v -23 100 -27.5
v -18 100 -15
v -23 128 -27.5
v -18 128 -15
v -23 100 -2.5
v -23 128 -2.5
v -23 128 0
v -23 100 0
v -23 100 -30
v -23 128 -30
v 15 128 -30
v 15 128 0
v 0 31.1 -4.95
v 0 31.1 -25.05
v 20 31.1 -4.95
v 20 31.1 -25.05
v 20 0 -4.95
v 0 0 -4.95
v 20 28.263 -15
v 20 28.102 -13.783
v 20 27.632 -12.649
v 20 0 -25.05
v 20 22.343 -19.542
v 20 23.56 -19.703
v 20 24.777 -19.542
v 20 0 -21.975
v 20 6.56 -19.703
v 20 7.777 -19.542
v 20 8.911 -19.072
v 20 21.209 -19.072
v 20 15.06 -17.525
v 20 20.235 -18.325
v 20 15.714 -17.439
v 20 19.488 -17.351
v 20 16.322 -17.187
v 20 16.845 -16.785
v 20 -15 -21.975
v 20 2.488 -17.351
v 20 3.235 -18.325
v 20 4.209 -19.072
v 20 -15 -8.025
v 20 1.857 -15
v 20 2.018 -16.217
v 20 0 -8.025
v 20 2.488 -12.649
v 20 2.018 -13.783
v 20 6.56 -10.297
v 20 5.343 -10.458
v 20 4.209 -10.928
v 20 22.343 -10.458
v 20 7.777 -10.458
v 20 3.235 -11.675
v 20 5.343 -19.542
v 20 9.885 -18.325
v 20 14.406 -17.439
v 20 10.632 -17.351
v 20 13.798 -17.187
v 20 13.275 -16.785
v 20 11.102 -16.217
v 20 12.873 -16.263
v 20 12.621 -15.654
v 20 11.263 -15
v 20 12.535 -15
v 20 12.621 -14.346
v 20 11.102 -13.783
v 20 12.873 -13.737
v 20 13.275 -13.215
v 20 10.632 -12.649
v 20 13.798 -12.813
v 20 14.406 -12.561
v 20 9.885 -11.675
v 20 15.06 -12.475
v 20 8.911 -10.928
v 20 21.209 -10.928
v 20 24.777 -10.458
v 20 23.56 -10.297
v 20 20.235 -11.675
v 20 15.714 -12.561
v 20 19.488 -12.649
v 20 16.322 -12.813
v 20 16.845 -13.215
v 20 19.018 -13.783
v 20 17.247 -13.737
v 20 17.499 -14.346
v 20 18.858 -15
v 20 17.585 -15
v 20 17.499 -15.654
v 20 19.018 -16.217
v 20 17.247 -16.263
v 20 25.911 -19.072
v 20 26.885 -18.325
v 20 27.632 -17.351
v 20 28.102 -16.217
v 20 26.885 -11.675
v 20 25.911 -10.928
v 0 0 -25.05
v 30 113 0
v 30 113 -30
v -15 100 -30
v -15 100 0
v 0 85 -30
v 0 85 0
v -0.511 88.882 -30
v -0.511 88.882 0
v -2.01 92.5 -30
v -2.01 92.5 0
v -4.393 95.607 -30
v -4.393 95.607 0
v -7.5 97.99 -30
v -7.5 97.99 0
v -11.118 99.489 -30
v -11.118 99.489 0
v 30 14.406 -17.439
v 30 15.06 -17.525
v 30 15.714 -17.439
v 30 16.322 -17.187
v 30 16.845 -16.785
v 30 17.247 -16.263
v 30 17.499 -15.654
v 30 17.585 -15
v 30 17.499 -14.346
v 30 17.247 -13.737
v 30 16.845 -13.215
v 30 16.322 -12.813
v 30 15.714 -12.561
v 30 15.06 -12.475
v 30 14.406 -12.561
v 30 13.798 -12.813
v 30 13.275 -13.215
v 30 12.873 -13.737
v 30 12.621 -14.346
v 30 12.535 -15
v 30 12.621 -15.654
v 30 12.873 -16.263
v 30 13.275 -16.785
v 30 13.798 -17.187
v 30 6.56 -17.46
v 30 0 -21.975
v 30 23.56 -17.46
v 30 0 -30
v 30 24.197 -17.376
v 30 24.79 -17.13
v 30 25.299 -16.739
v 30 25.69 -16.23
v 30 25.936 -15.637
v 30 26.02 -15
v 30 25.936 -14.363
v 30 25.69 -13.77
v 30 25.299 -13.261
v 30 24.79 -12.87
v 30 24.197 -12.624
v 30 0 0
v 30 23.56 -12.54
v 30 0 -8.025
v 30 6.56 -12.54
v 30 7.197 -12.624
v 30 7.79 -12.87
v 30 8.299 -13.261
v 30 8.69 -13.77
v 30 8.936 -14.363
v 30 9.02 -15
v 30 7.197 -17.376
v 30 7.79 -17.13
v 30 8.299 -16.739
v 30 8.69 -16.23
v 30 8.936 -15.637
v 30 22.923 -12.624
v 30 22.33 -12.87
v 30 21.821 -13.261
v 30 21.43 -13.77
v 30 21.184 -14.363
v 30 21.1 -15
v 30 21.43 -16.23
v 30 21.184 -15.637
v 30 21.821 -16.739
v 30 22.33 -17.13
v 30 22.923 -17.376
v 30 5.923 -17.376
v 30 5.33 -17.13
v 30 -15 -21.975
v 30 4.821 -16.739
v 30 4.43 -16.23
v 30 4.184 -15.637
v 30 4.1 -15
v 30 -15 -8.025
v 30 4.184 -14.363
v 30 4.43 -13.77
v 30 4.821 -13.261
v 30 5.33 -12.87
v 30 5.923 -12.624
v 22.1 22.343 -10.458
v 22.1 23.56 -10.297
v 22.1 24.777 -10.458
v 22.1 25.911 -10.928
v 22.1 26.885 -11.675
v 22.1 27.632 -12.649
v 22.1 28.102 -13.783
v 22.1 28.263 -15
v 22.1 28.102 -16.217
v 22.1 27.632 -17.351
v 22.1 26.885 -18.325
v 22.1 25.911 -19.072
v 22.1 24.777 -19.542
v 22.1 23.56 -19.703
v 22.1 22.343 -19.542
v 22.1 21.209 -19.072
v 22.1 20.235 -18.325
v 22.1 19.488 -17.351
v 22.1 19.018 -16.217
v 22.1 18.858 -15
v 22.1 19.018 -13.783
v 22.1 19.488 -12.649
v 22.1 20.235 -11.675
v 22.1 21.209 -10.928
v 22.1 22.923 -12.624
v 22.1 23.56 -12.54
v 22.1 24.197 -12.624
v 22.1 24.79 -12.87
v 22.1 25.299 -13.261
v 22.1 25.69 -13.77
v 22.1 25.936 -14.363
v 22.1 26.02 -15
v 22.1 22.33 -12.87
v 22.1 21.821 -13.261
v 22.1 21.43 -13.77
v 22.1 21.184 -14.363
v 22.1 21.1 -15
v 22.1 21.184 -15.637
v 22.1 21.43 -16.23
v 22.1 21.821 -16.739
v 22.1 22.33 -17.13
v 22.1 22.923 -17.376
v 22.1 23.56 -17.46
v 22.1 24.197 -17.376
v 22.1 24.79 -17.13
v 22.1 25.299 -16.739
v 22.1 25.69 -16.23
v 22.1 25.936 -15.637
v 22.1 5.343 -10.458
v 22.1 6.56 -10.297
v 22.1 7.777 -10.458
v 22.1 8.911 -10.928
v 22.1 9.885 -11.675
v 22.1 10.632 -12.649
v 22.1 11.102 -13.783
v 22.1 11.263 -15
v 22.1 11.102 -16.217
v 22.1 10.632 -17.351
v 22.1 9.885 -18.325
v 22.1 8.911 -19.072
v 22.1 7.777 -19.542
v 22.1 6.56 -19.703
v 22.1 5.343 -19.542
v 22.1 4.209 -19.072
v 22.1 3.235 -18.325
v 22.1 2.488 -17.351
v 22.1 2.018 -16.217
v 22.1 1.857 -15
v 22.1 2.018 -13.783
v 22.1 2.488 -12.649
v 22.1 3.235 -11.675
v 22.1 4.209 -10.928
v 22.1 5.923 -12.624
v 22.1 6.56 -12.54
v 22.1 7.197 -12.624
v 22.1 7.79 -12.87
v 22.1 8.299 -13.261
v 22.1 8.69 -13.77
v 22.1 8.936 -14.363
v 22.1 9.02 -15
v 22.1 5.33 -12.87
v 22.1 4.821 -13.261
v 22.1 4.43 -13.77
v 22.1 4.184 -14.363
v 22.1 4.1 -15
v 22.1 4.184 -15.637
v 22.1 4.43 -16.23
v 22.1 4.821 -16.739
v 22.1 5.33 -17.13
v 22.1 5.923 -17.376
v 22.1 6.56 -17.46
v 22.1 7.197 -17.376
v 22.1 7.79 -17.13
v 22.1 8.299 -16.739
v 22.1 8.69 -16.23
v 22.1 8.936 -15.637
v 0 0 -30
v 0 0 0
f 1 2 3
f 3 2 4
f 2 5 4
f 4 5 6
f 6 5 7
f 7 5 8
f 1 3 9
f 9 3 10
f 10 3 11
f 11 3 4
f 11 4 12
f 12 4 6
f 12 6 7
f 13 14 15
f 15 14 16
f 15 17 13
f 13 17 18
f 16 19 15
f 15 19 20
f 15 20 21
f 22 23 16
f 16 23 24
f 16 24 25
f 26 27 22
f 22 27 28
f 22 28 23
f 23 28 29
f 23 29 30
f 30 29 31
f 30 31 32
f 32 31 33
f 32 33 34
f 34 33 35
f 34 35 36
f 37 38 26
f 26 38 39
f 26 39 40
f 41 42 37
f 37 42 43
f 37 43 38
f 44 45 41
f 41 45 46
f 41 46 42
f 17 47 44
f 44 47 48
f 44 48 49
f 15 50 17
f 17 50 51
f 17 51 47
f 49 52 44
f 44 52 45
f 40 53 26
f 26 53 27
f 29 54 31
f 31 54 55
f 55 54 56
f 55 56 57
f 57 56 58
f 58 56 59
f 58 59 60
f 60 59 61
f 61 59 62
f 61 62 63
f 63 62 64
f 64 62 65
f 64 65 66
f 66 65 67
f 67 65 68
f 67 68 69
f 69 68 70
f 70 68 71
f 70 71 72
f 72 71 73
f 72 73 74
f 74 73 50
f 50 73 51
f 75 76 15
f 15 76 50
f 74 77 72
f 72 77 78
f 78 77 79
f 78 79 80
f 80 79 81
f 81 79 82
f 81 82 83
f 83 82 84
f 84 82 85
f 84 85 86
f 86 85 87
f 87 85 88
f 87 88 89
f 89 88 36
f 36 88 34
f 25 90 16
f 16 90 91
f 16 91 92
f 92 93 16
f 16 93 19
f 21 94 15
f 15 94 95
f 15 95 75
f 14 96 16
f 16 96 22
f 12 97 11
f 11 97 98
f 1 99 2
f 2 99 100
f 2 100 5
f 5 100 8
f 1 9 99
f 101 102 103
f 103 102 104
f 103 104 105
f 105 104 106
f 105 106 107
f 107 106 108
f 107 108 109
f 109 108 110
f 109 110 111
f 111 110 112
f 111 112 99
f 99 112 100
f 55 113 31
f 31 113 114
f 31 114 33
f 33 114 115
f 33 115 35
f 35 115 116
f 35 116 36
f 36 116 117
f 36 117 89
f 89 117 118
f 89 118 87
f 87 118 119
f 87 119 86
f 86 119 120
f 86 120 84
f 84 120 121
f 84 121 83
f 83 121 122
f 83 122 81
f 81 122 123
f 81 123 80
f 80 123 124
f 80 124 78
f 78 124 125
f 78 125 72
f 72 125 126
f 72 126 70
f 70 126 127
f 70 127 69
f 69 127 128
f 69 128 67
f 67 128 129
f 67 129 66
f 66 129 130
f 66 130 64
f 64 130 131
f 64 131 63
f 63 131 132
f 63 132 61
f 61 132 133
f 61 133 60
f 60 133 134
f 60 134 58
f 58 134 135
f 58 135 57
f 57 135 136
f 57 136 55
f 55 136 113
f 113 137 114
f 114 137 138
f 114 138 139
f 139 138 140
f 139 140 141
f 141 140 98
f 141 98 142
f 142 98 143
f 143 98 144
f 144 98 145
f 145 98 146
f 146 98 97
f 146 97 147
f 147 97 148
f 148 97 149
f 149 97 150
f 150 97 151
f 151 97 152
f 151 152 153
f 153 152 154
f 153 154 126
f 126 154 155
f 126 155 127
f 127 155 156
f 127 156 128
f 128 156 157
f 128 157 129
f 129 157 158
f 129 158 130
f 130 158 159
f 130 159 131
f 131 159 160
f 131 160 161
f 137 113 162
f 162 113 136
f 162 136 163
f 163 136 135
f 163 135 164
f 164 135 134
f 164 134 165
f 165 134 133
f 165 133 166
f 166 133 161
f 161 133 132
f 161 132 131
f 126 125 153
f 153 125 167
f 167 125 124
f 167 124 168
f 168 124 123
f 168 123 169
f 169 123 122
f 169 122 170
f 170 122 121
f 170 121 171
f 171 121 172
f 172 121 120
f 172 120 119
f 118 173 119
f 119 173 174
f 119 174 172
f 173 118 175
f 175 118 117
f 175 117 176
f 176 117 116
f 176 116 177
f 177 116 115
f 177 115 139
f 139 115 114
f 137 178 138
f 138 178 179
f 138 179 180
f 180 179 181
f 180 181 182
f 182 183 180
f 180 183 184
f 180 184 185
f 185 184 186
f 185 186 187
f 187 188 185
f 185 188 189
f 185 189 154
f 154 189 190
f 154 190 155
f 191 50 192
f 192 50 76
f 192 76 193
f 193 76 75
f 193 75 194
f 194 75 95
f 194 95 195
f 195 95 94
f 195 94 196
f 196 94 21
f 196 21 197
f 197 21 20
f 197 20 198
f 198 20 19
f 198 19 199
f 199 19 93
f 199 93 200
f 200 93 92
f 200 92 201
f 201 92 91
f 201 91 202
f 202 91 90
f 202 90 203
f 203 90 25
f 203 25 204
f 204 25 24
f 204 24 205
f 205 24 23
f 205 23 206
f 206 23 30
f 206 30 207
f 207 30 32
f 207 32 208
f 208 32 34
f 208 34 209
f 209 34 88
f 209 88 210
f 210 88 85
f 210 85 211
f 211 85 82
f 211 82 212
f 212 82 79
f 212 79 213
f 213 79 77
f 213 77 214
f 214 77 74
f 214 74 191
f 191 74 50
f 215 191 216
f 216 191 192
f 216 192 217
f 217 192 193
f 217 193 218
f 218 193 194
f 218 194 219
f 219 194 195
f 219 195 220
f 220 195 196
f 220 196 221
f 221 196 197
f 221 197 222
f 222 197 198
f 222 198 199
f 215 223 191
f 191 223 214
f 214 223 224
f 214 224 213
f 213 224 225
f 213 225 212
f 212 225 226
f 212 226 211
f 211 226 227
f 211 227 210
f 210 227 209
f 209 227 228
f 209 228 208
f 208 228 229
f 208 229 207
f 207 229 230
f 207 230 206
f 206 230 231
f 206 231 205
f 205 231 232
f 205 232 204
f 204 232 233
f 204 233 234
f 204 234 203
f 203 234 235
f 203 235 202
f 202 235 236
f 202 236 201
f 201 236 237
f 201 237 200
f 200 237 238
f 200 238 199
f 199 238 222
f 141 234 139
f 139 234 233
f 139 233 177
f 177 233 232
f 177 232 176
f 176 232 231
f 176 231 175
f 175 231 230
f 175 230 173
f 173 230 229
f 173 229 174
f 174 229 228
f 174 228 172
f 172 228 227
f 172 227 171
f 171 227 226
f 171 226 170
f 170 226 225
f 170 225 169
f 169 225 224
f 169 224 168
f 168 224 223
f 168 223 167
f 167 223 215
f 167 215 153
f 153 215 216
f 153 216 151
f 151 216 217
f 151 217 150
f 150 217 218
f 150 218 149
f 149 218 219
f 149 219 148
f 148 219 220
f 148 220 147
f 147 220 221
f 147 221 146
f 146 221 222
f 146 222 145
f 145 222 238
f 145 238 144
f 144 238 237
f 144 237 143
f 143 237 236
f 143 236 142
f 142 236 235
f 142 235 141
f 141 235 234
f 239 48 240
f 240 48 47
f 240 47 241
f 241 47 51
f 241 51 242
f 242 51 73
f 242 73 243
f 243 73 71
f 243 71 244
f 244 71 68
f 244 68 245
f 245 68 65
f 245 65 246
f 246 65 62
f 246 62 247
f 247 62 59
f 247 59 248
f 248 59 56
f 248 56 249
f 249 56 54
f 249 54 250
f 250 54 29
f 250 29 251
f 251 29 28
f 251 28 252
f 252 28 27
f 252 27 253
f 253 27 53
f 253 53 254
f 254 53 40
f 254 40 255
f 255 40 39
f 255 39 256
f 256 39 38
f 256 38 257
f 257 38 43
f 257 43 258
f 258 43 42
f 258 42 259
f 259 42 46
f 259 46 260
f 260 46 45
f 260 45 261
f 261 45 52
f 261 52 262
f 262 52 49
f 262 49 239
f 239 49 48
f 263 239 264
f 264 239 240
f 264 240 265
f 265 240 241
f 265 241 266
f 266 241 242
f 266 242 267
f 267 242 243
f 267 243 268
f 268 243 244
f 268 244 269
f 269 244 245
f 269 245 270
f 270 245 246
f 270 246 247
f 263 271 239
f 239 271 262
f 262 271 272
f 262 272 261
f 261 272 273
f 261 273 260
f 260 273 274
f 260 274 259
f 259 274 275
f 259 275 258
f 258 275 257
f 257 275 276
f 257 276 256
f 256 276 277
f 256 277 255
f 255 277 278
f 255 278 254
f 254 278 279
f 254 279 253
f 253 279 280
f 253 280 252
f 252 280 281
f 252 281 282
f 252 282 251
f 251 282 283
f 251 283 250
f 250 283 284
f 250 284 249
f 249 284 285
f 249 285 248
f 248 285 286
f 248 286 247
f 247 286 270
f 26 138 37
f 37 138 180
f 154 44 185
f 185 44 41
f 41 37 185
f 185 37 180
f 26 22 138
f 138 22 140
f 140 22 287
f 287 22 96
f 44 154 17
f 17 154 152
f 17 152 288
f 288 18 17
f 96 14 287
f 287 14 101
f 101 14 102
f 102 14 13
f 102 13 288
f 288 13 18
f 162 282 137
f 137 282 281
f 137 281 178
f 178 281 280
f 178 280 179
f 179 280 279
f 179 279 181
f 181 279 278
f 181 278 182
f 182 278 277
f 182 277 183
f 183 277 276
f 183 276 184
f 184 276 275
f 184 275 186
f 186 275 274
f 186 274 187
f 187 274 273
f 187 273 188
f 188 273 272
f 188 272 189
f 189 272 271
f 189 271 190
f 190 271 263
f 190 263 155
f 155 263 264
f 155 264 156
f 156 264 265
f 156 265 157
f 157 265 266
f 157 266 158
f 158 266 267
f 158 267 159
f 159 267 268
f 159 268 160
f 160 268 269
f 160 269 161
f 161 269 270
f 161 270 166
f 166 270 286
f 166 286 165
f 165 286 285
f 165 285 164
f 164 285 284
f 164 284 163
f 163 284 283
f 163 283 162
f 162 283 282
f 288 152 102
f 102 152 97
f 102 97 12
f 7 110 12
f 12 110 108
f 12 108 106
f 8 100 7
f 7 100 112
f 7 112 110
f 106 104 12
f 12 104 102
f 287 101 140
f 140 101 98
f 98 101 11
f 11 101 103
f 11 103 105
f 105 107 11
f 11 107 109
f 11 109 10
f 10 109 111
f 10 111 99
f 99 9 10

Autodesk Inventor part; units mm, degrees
ref_plane "YZ Plane" through (0, 0, 0) normal (1, 0, 0) x (0, 1, 0)
ref_plane "XZ Plane" through (0, 0, 0) normal (0, 1, 0) x (-1, 0, 0)
ref_plane "XY Plane" through (0, 0, 0) normal (0, 0, 1) x (1, 0, 0)
sketch "Sketch1" plane through (0, 0, 0) normal (0, 0, 1) x (1, 0, 0)
  line L0 (0, 0) -> (25, 0)
  line L1 (25, 0) -> (25, 40)
  line L2 (25, 40) -> (0, 40)
  line L3 (0, 40) -> (0, 0)
  dimension "d1" = 25
  dimension "d2" = 40
  dimension "d3" = 25
extrude "Extrusion1" add sketch "Sketch1" against normal blind 30
sketch "Sketch2" plane through (25, 0, 0) normal (1, 0, 0) x (0, 0, -1)
  line L0 (0, 0) -> (30, 0) projected
  circle A0 centre (15, 6.56) radius 2.46
extrude "Extrusion2" cut sketch "Sketch2" against normal blind 30
sketch "Sketch3" plane through (0, 0, 0) normal (-1, 0, 0) x (0, 0, 1)
  line L0 (0, 0) -> (-30, 0) projected
  line L1 (-25.05, 0) -> (-4.95, 0)
  line L2 (-4.95, 0) -> (-4.95, 33.12)
  line L3 (-4.95, 33.12) -> (-25.05, 33.12)
  line L4 (-25.05, 33.12) -> (-25.05, 0)
  dimension "d11" = 20.1
extrude "Extrusion3" cut sketch "Sketch3" against normal blind 20
sketch "Sketch4" plane through (0, 0, 0) normal (0, -1, 0) x (1, 0, 0)
  line L0 (20, -4.95) -> (20, -25.05) projected
  line L1 (20, -15) -> (25, -15)
  line L2 (25, 0) -> (25, -30) projected
  line L3 (20, -8.025) -> (25, -8.025)
  line L4 (25, -8.025) -> (25, -21.975)
  line L5 (25, -21.975) -> (20, -21.975)
  line L6 (20, -21.975) -> (20, -8.025)
  line L7 (20, -8.025) -> (25, -21.975) construction
  line L8 (25, -8.025) -> (20, -21.975) construction
  line L9 (25, -12.54) -> (25, -17.46) projected
  point P0 (0, 0)
  point P1 (22.5, -15)
  dimension "d14" = 13.95
extrude "Extrusion4" add sketch "Sketch4" along normal blind 15
sketch "Sketch5" plane through (20, 0, 0) normal (-1, 0, 0) x (0, 0, 1)
  circle A0 centre (-15, 6.56) radius 2.46 projected
  circle A1 centre (-15, 6.56) radius 4.7025
  circle A2 centre (-15, 6.56) radius 2.46 projected
  circle A3 centre (-15, 6.56) radius 2.46
  point P0 (0, 0)
  dimension "d17" = 9.405
extrude "Extrusion5" cut sketch "Sketch5" against normal blind 2.1
sketch "Sketch6" plane through (25, 0, 0) normal (1, 0, 0) x (0, 0, -1)
  circle A0 centre (15, 6.56) radius 4.7025 projected
  line L0 (15, 6.56) -> (15, 23.56)
  circle A1 centre (15, 23.56) radius 2.46
  point P0 (0, 0)
  dimension "d20" = 17
  dimension "d21" = 4.92
extrude "Extrusion6" cut sketch "Sketch6" against normal blind 10 contours A1
sketch "Sketch7" plane through (20, 0, 0) normal (-1, 0, 0) x (0, 0, 1)
  circle A0 centre (-15, 23.56) radius 2.46 projected
  circle A1 centre (-15, 23.56) radius 4.7025
  point P0 (0, 0)
  dimension "d24" = 9.405
extrude "Extrusion7" cut sketch "Sketch7" against normal blind 2.1
sketch "Sketch9" plane through (25, 0, 0) normal (1, 0, 0) x (0, 0, -1)
  circle A0 centre (15, 6.56) radius 2.46 projected
  circle A1 centre (15, 6.56) radius 2.46
  circle A2 centre (15, 23.56) radius 2.46 projected
  circle A3 centre (15, 23.56) radius 2.46
  line L0 (30, 40) -> (30, 0) projected
  line L1 (30, 0) -> (30, 40)
  line L2 (30, 40) -> (0, 40)
  line L3 (0, 40) -> (0, 0)
  line L4 (0, 0) -> (8.025, 0) projected
  line L5 (21.975, 0) -> (21.975, -15)
  line L6 (21.975, -15) -> (8.025, -15)
  line L7 (8.025, -15) -> (8.025, 0)
  line L8 (0, 0) -> (8.025, 0)
  line L9 (21.975, 0) -> (30, 0)
extrude "Extrusion8" add sketch "Sketch9" along normal blind 5
sketch "Sketch10" plane through (0, 40, 0) normal (0, 1, 0) x (1, 0, 0)
  line L0 (0, 30) -> (30, 30) projected
  line L1 (30, 0) -> (0, 0) projected
  line L2 (0, 30) -> (30, 30)
  line L3 (30, 30) -> (30, 0)
  line L4 (30, 0) -> (0, 0)
  line L5 (0, 0) -> (0, 30)
extrude "Extrusion9" add sketch "Sketch10" along normal blind 30
sketch "Sketch12" plane through (30, 0, 0) normal (1, 0, 0) x (0, 0, -1)
  circle A0 centre (15, 6.56) radius 2.46 projected
  line L0 (15, 6.56) -> (15, 15.06)
  circle A1 centre (15, 15.06) radius 2.525
  point P0 (0, 0)
  dimension "d31" = 8.5
  dimension "d33" = 5.05
extrude "Extrusion10" cut sketch "Sketch12" against normal blind 30 contours A1
sketch "Sketch14" plane through (0, 0, 0) normal (0, 0, 1) x (1, 0, 0)
  line L0 (30, 70) -> (0, 70) projected
  line L1 (0, 70) -> (0, 85)
  line L2 (-15, 100) -> (-23, 100)
  line L3 (30, 0) -> (30, 70) projected
  line L4 (30, 113) -> (30, 70)
  arc A0 (0, 85) -> (-15, 100) centre (-15, 85) ccw
  line L5 (30, 105) -> (30, 100)
  line L6 (-23, 128) -> (15, 128)
  line L7 (30, 113) -> (15, 128)
  line L8 (-23, 128) -> (-23, 100)
  point P0 (0, 0)
  point P1 (0, 100)
  dimension "d47" = 30
  dimension "d54" = 15
  dimension "d69" = 28
extrude "Extrusion12" add sketch "Sketch14" against normal blind 30
sketch "Sketch15" plane through (0, 0, -25.05) normal (-1, 0, 0) x (0, 0, 1)
  line L0 (0, 33.12) -> (20.1, 33.12) projected
  line L1 (20.1, 33.12) -> (20.1, 0) projected
  line L2 (0, 33.12) -> (20.1, 33.12)
  line L3 (20.1, 33.12) -> (20.1, 31.1)
  line L4 (20.1, 31.1) -> (0, 31.1)
  line L5 (0, 31.1) -> (0, 33.12)
  point P0 (25.05, 0)
  dimension "d57" = 2.02
extrude "Extrusion13" add sketch "Sketch15" against normal blind 20
sketch "Sketch23" plane through (-23, 128, 0) normal (0, 1, 0) x (1, 0, 0)
  line L0 (0, 0) -> (0, 30) projected
  line L1 (0, 15) -> (0, 2.5)
  line L2 (0, 27.5) -> (0, 15)
  line L3 (0, 27.5) -> (5, 15)
  line L4 (5, 15) -> (0, 2.5)
  point P0 (23, 0)
  dimension "d87" = 12.5
extrude "Extrusion16" cut sketch "Sketch23" against normal through all
properties part number "orien_b_20mm"
